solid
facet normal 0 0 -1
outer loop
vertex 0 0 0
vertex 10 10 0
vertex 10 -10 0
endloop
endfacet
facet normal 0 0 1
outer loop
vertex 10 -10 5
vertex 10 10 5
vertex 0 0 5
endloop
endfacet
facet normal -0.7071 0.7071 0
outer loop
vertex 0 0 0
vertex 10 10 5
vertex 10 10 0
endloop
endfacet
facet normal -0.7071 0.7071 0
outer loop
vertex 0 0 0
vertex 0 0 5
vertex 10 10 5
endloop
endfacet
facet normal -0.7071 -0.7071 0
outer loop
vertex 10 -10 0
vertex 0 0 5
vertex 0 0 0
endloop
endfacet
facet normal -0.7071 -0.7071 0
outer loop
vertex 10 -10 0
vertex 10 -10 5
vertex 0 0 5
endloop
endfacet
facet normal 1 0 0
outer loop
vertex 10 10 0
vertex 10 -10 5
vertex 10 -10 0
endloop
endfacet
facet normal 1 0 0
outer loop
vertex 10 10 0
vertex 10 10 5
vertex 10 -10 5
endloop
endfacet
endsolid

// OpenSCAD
module pentagonal_prism(width, height, depth) {
  linear_extrude(height = depth)
  polygon(points=[[0,0], [width/2, height], [width/2, -height], [0, -height], [width/2, -height]]);
}

pentagonal_prism(width = 20, height = 10, depth = 5);
